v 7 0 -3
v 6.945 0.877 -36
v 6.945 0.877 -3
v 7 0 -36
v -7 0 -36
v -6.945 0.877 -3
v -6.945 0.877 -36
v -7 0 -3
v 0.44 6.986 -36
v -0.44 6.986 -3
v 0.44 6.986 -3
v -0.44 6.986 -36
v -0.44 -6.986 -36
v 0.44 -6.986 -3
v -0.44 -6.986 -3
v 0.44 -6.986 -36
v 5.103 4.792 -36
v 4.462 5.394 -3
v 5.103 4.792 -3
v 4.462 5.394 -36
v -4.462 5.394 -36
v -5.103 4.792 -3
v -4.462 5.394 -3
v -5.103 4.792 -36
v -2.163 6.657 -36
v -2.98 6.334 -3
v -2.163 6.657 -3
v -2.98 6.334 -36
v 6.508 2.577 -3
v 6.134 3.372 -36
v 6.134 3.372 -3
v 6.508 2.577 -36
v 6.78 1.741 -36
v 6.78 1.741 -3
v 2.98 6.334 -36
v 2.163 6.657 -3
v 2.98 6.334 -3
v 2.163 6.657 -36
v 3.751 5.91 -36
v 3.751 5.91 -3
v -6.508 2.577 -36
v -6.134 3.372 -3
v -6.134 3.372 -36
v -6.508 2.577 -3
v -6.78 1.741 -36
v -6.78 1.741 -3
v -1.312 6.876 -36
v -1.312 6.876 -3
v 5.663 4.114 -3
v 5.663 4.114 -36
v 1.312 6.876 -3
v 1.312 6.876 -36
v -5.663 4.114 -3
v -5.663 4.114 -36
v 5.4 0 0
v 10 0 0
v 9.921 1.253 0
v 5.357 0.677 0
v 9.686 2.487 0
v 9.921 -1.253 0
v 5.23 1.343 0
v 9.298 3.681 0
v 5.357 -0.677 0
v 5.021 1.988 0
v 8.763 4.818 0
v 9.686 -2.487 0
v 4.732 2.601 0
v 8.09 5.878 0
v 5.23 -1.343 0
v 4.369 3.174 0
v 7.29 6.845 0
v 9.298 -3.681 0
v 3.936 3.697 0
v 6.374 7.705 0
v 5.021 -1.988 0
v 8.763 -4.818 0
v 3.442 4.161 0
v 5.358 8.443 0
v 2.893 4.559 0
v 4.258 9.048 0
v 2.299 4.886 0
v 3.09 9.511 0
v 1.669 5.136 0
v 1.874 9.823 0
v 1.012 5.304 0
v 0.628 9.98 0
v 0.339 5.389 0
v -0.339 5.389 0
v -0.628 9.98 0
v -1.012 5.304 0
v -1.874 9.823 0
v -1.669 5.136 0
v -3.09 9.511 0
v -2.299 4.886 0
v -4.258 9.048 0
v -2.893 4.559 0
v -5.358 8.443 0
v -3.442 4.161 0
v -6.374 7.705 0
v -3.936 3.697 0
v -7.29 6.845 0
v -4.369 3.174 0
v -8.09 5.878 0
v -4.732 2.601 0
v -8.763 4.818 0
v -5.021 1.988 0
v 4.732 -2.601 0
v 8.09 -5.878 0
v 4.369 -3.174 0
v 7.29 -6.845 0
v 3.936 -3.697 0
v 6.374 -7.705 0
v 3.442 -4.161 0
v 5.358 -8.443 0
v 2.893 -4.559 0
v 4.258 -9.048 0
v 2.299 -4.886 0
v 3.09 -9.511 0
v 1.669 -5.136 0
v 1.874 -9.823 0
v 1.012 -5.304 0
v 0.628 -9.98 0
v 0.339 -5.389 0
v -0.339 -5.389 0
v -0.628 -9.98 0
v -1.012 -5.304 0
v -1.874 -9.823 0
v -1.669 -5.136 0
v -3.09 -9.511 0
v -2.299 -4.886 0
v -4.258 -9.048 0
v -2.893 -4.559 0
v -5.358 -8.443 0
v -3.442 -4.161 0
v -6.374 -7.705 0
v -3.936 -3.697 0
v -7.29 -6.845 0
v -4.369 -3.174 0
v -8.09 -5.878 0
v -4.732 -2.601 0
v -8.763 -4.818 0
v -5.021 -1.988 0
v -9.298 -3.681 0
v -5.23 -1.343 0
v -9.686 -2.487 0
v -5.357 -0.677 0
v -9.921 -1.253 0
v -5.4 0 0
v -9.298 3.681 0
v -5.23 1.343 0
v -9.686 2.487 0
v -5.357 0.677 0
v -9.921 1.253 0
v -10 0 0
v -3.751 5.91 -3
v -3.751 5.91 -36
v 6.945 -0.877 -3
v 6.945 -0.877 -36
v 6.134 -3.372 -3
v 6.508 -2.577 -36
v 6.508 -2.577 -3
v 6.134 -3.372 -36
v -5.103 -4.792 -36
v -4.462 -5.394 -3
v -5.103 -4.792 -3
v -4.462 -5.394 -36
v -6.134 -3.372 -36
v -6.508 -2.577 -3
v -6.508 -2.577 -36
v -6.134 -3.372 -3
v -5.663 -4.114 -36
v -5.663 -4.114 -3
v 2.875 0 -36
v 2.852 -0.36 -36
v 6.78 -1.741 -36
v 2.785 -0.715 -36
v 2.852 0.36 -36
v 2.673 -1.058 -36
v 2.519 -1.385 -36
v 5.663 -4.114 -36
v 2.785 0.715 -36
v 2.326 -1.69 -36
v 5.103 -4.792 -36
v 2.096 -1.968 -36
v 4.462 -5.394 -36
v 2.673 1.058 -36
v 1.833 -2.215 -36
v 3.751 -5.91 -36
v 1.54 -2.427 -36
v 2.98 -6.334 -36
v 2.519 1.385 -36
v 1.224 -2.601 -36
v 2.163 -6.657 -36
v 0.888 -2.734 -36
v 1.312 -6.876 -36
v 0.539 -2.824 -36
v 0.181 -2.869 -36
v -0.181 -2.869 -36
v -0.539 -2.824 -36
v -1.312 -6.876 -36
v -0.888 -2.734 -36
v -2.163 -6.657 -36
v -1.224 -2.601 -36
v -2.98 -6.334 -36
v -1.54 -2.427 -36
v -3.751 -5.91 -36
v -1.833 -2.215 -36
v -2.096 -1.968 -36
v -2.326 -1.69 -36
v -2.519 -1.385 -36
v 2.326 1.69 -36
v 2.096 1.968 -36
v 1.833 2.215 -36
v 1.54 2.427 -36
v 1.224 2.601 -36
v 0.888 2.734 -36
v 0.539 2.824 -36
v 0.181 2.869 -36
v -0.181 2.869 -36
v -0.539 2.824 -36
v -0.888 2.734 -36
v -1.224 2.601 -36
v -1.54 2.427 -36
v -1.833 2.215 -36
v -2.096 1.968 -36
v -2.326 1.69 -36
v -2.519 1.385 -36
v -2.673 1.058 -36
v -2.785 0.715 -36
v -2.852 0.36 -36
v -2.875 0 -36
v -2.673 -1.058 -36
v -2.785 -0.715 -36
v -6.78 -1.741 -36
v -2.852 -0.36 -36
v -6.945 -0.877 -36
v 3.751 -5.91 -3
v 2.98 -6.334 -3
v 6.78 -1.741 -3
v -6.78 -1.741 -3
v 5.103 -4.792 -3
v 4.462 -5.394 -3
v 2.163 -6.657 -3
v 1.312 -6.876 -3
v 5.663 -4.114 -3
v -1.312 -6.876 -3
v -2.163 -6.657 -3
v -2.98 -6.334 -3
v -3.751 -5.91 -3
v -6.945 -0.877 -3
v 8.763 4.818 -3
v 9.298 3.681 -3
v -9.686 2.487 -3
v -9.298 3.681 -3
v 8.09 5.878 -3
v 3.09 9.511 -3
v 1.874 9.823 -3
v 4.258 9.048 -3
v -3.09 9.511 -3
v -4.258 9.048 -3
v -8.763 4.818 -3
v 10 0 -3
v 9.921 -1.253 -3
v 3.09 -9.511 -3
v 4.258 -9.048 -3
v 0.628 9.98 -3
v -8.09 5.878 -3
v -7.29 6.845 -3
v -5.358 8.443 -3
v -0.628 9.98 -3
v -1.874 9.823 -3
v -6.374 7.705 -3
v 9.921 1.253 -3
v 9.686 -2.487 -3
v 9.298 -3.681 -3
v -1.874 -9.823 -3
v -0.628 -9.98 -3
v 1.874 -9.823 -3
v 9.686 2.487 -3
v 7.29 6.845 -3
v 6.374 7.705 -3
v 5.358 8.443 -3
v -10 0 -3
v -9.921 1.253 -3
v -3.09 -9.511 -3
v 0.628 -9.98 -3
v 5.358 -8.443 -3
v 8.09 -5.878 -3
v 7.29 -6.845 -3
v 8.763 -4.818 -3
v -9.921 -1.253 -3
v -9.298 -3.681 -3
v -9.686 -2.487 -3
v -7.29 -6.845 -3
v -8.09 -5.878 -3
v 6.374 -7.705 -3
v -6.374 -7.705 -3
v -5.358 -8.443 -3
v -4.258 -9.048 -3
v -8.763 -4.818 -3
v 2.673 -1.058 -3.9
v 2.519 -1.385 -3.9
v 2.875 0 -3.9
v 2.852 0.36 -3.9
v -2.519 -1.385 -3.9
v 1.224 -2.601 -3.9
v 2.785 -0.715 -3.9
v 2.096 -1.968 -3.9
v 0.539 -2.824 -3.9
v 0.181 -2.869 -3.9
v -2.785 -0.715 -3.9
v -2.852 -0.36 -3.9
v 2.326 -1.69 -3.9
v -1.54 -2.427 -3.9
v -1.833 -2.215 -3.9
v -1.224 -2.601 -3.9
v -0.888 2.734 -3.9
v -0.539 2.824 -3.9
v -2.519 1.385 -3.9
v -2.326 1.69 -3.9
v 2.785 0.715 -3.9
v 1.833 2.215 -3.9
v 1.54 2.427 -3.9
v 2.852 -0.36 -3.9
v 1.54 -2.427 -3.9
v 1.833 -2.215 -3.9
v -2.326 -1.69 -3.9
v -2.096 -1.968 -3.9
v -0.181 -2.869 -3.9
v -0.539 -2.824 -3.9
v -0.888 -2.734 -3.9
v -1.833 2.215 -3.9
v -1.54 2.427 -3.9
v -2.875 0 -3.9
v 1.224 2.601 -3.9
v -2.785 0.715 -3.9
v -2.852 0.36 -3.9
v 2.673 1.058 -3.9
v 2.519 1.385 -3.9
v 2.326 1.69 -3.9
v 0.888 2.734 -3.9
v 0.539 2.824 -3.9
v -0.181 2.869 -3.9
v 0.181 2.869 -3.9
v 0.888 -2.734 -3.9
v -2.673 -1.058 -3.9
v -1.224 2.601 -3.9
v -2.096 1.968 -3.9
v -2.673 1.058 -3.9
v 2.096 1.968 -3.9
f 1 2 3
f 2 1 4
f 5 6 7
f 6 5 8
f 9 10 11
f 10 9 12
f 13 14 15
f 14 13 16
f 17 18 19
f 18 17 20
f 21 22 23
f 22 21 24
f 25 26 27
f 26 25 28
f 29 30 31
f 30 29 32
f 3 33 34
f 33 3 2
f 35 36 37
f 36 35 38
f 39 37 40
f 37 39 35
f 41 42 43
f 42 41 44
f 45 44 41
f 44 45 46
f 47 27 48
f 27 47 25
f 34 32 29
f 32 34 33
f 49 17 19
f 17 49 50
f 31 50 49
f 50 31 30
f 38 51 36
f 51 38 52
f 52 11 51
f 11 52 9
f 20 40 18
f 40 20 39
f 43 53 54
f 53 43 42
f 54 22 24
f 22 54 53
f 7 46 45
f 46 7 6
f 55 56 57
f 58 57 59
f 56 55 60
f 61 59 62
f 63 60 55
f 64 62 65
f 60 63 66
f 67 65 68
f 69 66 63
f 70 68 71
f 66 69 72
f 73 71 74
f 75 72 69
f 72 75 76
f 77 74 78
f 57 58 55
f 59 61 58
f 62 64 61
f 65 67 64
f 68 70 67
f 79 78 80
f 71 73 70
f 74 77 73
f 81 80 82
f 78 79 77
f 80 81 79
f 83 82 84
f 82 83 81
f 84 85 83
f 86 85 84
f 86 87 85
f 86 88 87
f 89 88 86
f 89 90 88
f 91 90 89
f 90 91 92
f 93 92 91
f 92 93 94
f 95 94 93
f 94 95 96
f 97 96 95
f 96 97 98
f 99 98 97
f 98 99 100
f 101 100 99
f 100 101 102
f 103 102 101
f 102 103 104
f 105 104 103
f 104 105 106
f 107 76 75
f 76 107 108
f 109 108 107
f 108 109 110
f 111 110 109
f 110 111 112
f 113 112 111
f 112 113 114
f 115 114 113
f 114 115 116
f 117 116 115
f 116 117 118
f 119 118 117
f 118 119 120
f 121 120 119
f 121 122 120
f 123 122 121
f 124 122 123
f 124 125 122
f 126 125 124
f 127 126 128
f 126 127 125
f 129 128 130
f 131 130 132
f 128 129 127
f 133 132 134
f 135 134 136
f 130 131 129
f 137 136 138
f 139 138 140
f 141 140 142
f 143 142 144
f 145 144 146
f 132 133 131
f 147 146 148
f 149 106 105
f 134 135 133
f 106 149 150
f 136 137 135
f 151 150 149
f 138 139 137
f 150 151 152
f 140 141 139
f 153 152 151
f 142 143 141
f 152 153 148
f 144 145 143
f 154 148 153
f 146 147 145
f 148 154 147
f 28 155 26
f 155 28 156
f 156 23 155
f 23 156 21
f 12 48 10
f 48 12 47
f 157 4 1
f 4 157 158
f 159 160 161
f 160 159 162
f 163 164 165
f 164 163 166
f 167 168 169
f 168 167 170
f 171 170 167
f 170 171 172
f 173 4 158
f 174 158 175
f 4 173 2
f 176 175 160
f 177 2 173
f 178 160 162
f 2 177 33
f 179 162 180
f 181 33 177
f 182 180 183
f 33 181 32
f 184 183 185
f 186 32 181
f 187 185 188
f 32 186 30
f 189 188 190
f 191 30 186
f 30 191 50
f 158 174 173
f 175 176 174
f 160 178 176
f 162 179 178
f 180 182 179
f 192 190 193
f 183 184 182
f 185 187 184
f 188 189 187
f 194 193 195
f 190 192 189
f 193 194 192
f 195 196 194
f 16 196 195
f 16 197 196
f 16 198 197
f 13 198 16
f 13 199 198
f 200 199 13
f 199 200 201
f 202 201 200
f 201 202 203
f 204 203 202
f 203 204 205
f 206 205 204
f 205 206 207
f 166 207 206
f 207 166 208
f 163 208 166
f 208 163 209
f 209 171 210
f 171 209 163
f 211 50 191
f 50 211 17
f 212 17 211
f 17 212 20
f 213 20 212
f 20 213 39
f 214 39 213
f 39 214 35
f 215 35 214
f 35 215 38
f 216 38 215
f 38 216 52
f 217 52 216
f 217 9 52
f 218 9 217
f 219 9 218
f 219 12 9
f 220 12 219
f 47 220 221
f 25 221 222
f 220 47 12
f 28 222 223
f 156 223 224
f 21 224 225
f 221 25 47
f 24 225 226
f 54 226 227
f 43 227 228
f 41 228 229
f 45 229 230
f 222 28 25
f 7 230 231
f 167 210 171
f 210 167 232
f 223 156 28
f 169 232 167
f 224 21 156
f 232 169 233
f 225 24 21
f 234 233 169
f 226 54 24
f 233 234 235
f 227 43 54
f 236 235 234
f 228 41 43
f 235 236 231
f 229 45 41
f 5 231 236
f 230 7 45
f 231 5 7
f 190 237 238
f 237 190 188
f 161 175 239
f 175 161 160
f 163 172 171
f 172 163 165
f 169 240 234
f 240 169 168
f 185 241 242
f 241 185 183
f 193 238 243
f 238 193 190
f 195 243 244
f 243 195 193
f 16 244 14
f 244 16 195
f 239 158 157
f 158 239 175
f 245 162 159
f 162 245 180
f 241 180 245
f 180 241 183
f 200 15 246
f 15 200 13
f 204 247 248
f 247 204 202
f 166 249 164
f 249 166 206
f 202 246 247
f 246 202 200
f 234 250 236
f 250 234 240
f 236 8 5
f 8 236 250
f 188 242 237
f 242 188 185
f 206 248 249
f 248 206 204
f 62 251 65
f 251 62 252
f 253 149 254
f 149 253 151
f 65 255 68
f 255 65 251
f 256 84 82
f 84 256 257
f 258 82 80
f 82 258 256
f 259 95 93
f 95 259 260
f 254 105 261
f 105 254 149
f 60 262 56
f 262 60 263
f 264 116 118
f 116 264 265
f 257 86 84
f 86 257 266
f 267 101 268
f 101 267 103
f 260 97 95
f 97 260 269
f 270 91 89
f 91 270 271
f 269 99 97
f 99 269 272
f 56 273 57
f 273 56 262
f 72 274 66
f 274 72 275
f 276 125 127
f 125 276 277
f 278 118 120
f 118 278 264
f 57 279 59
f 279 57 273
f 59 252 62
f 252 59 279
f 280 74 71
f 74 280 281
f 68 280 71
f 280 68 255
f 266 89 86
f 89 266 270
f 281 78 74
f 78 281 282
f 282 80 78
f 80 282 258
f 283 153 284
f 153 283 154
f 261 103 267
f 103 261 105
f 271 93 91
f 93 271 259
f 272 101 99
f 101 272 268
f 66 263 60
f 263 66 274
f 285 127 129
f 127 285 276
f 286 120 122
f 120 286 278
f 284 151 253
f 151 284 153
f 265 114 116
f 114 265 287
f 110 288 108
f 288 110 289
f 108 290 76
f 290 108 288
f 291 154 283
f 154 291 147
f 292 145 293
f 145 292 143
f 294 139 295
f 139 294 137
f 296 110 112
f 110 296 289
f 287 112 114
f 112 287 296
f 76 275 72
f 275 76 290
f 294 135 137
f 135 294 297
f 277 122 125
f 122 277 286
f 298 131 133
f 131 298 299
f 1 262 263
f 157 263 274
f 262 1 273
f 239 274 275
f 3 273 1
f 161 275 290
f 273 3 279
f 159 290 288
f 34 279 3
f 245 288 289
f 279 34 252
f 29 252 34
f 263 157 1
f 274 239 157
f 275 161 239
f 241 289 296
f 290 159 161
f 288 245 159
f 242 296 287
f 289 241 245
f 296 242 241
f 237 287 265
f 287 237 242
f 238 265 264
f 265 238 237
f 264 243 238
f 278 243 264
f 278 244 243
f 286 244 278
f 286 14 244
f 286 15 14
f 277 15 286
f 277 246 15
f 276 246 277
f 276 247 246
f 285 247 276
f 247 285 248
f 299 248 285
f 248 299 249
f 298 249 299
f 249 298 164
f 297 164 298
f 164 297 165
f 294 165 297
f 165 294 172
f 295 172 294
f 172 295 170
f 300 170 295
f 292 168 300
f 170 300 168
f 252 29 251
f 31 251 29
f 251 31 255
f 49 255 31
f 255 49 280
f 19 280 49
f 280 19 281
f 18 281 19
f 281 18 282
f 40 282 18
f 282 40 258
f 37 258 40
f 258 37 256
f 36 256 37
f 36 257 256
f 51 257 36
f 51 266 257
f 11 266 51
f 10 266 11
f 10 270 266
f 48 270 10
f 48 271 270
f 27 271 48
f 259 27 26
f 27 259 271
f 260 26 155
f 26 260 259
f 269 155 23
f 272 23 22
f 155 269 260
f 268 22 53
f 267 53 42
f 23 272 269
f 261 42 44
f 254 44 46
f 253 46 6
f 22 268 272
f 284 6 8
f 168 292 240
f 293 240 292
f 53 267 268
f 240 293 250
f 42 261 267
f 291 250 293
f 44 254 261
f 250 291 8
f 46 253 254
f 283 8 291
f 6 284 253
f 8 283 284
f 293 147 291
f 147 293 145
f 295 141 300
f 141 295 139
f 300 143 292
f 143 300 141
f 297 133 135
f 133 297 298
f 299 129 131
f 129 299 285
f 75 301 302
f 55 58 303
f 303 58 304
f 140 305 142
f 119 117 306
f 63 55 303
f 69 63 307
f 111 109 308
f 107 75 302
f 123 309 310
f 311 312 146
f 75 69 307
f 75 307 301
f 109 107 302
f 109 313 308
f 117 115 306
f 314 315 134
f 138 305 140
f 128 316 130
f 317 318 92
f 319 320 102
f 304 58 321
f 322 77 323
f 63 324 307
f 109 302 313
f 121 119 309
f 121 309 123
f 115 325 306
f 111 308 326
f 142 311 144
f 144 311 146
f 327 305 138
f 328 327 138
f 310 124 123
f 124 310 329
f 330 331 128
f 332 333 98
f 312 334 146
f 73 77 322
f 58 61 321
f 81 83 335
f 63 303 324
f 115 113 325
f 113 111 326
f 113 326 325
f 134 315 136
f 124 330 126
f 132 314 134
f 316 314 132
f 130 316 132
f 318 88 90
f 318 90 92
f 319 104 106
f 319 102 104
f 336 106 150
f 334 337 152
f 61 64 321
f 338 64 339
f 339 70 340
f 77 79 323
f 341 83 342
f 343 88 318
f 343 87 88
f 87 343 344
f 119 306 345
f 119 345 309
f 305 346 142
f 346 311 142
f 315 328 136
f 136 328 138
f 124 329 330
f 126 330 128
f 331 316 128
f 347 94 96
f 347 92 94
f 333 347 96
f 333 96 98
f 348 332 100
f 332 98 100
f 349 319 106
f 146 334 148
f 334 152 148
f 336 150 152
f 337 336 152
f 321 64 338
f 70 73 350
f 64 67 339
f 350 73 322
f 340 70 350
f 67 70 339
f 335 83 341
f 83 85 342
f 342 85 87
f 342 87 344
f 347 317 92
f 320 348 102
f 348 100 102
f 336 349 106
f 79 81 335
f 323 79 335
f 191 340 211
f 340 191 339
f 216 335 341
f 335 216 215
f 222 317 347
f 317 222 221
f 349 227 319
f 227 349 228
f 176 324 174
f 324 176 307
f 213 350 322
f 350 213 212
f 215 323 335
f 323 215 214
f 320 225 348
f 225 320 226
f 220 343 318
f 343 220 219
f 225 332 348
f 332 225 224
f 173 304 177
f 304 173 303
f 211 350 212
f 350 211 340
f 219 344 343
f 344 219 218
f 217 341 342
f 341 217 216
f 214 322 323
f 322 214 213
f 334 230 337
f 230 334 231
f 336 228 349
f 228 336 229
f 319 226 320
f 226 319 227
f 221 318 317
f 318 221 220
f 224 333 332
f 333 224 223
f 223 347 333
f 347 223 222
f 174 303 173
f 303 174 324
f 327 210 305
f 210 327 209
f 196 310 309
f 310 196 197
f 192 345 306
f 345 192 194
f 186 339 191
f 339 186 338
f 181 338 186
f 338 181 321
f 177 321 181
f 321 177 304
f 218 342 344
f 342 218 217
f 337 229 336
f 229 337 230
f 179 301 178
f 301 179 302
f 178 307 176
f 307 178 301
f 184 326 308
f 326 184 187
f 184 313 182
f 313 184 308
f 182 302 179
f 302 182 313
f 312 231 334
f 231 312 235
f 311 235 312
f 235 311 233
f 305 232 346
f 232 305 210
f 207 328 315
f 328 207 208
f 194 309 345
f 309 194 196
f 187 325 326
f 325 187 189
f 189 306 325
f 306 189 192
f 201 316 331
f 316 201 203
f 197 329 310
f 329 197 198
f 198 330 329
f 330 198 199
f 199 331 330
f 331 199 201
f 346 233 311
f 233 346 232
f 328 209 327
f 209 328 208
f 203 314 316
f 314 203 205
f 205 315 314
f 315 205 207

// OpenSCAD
$fn = 50;


difference() {
	union() {
		translate(v = [0, 0, -36.0000000000]) {
			cylinder(h = 36, r = 7.0000000000);
		}
		translate(v = [0, 0, -3.0000000000]) {
			cylinder(h = 3, r = 10.0000000000);
		}
	}
	union() {
		translate(v = [0, 0, 0]) {
			rotate(a = [0, 0, 0]) {
				difference() {
					union() {
						#translate(v = [0, 0, -36.0000000000]) {
							cylinder(h = 36, r = 2.6000000000);
						}
						#translate(v = [0, 0, -3.9000000000]) {
							cylinder(h = 3.9000000000, r = 7.0000000000, r1 = 2.8750000000, r2 = 5.4000000000);
						}
						#translate(v = [0, 0, -36.0000000000]) {
							cylinder(h = 36, r = 2.8750000000);
						}
						#translate(v = [0, 0, -36.0000000000]) {
							cylinder(h = 36, r = 2.6000000000);
						}
					}
					union();
				}
			}
		}
	}
}
